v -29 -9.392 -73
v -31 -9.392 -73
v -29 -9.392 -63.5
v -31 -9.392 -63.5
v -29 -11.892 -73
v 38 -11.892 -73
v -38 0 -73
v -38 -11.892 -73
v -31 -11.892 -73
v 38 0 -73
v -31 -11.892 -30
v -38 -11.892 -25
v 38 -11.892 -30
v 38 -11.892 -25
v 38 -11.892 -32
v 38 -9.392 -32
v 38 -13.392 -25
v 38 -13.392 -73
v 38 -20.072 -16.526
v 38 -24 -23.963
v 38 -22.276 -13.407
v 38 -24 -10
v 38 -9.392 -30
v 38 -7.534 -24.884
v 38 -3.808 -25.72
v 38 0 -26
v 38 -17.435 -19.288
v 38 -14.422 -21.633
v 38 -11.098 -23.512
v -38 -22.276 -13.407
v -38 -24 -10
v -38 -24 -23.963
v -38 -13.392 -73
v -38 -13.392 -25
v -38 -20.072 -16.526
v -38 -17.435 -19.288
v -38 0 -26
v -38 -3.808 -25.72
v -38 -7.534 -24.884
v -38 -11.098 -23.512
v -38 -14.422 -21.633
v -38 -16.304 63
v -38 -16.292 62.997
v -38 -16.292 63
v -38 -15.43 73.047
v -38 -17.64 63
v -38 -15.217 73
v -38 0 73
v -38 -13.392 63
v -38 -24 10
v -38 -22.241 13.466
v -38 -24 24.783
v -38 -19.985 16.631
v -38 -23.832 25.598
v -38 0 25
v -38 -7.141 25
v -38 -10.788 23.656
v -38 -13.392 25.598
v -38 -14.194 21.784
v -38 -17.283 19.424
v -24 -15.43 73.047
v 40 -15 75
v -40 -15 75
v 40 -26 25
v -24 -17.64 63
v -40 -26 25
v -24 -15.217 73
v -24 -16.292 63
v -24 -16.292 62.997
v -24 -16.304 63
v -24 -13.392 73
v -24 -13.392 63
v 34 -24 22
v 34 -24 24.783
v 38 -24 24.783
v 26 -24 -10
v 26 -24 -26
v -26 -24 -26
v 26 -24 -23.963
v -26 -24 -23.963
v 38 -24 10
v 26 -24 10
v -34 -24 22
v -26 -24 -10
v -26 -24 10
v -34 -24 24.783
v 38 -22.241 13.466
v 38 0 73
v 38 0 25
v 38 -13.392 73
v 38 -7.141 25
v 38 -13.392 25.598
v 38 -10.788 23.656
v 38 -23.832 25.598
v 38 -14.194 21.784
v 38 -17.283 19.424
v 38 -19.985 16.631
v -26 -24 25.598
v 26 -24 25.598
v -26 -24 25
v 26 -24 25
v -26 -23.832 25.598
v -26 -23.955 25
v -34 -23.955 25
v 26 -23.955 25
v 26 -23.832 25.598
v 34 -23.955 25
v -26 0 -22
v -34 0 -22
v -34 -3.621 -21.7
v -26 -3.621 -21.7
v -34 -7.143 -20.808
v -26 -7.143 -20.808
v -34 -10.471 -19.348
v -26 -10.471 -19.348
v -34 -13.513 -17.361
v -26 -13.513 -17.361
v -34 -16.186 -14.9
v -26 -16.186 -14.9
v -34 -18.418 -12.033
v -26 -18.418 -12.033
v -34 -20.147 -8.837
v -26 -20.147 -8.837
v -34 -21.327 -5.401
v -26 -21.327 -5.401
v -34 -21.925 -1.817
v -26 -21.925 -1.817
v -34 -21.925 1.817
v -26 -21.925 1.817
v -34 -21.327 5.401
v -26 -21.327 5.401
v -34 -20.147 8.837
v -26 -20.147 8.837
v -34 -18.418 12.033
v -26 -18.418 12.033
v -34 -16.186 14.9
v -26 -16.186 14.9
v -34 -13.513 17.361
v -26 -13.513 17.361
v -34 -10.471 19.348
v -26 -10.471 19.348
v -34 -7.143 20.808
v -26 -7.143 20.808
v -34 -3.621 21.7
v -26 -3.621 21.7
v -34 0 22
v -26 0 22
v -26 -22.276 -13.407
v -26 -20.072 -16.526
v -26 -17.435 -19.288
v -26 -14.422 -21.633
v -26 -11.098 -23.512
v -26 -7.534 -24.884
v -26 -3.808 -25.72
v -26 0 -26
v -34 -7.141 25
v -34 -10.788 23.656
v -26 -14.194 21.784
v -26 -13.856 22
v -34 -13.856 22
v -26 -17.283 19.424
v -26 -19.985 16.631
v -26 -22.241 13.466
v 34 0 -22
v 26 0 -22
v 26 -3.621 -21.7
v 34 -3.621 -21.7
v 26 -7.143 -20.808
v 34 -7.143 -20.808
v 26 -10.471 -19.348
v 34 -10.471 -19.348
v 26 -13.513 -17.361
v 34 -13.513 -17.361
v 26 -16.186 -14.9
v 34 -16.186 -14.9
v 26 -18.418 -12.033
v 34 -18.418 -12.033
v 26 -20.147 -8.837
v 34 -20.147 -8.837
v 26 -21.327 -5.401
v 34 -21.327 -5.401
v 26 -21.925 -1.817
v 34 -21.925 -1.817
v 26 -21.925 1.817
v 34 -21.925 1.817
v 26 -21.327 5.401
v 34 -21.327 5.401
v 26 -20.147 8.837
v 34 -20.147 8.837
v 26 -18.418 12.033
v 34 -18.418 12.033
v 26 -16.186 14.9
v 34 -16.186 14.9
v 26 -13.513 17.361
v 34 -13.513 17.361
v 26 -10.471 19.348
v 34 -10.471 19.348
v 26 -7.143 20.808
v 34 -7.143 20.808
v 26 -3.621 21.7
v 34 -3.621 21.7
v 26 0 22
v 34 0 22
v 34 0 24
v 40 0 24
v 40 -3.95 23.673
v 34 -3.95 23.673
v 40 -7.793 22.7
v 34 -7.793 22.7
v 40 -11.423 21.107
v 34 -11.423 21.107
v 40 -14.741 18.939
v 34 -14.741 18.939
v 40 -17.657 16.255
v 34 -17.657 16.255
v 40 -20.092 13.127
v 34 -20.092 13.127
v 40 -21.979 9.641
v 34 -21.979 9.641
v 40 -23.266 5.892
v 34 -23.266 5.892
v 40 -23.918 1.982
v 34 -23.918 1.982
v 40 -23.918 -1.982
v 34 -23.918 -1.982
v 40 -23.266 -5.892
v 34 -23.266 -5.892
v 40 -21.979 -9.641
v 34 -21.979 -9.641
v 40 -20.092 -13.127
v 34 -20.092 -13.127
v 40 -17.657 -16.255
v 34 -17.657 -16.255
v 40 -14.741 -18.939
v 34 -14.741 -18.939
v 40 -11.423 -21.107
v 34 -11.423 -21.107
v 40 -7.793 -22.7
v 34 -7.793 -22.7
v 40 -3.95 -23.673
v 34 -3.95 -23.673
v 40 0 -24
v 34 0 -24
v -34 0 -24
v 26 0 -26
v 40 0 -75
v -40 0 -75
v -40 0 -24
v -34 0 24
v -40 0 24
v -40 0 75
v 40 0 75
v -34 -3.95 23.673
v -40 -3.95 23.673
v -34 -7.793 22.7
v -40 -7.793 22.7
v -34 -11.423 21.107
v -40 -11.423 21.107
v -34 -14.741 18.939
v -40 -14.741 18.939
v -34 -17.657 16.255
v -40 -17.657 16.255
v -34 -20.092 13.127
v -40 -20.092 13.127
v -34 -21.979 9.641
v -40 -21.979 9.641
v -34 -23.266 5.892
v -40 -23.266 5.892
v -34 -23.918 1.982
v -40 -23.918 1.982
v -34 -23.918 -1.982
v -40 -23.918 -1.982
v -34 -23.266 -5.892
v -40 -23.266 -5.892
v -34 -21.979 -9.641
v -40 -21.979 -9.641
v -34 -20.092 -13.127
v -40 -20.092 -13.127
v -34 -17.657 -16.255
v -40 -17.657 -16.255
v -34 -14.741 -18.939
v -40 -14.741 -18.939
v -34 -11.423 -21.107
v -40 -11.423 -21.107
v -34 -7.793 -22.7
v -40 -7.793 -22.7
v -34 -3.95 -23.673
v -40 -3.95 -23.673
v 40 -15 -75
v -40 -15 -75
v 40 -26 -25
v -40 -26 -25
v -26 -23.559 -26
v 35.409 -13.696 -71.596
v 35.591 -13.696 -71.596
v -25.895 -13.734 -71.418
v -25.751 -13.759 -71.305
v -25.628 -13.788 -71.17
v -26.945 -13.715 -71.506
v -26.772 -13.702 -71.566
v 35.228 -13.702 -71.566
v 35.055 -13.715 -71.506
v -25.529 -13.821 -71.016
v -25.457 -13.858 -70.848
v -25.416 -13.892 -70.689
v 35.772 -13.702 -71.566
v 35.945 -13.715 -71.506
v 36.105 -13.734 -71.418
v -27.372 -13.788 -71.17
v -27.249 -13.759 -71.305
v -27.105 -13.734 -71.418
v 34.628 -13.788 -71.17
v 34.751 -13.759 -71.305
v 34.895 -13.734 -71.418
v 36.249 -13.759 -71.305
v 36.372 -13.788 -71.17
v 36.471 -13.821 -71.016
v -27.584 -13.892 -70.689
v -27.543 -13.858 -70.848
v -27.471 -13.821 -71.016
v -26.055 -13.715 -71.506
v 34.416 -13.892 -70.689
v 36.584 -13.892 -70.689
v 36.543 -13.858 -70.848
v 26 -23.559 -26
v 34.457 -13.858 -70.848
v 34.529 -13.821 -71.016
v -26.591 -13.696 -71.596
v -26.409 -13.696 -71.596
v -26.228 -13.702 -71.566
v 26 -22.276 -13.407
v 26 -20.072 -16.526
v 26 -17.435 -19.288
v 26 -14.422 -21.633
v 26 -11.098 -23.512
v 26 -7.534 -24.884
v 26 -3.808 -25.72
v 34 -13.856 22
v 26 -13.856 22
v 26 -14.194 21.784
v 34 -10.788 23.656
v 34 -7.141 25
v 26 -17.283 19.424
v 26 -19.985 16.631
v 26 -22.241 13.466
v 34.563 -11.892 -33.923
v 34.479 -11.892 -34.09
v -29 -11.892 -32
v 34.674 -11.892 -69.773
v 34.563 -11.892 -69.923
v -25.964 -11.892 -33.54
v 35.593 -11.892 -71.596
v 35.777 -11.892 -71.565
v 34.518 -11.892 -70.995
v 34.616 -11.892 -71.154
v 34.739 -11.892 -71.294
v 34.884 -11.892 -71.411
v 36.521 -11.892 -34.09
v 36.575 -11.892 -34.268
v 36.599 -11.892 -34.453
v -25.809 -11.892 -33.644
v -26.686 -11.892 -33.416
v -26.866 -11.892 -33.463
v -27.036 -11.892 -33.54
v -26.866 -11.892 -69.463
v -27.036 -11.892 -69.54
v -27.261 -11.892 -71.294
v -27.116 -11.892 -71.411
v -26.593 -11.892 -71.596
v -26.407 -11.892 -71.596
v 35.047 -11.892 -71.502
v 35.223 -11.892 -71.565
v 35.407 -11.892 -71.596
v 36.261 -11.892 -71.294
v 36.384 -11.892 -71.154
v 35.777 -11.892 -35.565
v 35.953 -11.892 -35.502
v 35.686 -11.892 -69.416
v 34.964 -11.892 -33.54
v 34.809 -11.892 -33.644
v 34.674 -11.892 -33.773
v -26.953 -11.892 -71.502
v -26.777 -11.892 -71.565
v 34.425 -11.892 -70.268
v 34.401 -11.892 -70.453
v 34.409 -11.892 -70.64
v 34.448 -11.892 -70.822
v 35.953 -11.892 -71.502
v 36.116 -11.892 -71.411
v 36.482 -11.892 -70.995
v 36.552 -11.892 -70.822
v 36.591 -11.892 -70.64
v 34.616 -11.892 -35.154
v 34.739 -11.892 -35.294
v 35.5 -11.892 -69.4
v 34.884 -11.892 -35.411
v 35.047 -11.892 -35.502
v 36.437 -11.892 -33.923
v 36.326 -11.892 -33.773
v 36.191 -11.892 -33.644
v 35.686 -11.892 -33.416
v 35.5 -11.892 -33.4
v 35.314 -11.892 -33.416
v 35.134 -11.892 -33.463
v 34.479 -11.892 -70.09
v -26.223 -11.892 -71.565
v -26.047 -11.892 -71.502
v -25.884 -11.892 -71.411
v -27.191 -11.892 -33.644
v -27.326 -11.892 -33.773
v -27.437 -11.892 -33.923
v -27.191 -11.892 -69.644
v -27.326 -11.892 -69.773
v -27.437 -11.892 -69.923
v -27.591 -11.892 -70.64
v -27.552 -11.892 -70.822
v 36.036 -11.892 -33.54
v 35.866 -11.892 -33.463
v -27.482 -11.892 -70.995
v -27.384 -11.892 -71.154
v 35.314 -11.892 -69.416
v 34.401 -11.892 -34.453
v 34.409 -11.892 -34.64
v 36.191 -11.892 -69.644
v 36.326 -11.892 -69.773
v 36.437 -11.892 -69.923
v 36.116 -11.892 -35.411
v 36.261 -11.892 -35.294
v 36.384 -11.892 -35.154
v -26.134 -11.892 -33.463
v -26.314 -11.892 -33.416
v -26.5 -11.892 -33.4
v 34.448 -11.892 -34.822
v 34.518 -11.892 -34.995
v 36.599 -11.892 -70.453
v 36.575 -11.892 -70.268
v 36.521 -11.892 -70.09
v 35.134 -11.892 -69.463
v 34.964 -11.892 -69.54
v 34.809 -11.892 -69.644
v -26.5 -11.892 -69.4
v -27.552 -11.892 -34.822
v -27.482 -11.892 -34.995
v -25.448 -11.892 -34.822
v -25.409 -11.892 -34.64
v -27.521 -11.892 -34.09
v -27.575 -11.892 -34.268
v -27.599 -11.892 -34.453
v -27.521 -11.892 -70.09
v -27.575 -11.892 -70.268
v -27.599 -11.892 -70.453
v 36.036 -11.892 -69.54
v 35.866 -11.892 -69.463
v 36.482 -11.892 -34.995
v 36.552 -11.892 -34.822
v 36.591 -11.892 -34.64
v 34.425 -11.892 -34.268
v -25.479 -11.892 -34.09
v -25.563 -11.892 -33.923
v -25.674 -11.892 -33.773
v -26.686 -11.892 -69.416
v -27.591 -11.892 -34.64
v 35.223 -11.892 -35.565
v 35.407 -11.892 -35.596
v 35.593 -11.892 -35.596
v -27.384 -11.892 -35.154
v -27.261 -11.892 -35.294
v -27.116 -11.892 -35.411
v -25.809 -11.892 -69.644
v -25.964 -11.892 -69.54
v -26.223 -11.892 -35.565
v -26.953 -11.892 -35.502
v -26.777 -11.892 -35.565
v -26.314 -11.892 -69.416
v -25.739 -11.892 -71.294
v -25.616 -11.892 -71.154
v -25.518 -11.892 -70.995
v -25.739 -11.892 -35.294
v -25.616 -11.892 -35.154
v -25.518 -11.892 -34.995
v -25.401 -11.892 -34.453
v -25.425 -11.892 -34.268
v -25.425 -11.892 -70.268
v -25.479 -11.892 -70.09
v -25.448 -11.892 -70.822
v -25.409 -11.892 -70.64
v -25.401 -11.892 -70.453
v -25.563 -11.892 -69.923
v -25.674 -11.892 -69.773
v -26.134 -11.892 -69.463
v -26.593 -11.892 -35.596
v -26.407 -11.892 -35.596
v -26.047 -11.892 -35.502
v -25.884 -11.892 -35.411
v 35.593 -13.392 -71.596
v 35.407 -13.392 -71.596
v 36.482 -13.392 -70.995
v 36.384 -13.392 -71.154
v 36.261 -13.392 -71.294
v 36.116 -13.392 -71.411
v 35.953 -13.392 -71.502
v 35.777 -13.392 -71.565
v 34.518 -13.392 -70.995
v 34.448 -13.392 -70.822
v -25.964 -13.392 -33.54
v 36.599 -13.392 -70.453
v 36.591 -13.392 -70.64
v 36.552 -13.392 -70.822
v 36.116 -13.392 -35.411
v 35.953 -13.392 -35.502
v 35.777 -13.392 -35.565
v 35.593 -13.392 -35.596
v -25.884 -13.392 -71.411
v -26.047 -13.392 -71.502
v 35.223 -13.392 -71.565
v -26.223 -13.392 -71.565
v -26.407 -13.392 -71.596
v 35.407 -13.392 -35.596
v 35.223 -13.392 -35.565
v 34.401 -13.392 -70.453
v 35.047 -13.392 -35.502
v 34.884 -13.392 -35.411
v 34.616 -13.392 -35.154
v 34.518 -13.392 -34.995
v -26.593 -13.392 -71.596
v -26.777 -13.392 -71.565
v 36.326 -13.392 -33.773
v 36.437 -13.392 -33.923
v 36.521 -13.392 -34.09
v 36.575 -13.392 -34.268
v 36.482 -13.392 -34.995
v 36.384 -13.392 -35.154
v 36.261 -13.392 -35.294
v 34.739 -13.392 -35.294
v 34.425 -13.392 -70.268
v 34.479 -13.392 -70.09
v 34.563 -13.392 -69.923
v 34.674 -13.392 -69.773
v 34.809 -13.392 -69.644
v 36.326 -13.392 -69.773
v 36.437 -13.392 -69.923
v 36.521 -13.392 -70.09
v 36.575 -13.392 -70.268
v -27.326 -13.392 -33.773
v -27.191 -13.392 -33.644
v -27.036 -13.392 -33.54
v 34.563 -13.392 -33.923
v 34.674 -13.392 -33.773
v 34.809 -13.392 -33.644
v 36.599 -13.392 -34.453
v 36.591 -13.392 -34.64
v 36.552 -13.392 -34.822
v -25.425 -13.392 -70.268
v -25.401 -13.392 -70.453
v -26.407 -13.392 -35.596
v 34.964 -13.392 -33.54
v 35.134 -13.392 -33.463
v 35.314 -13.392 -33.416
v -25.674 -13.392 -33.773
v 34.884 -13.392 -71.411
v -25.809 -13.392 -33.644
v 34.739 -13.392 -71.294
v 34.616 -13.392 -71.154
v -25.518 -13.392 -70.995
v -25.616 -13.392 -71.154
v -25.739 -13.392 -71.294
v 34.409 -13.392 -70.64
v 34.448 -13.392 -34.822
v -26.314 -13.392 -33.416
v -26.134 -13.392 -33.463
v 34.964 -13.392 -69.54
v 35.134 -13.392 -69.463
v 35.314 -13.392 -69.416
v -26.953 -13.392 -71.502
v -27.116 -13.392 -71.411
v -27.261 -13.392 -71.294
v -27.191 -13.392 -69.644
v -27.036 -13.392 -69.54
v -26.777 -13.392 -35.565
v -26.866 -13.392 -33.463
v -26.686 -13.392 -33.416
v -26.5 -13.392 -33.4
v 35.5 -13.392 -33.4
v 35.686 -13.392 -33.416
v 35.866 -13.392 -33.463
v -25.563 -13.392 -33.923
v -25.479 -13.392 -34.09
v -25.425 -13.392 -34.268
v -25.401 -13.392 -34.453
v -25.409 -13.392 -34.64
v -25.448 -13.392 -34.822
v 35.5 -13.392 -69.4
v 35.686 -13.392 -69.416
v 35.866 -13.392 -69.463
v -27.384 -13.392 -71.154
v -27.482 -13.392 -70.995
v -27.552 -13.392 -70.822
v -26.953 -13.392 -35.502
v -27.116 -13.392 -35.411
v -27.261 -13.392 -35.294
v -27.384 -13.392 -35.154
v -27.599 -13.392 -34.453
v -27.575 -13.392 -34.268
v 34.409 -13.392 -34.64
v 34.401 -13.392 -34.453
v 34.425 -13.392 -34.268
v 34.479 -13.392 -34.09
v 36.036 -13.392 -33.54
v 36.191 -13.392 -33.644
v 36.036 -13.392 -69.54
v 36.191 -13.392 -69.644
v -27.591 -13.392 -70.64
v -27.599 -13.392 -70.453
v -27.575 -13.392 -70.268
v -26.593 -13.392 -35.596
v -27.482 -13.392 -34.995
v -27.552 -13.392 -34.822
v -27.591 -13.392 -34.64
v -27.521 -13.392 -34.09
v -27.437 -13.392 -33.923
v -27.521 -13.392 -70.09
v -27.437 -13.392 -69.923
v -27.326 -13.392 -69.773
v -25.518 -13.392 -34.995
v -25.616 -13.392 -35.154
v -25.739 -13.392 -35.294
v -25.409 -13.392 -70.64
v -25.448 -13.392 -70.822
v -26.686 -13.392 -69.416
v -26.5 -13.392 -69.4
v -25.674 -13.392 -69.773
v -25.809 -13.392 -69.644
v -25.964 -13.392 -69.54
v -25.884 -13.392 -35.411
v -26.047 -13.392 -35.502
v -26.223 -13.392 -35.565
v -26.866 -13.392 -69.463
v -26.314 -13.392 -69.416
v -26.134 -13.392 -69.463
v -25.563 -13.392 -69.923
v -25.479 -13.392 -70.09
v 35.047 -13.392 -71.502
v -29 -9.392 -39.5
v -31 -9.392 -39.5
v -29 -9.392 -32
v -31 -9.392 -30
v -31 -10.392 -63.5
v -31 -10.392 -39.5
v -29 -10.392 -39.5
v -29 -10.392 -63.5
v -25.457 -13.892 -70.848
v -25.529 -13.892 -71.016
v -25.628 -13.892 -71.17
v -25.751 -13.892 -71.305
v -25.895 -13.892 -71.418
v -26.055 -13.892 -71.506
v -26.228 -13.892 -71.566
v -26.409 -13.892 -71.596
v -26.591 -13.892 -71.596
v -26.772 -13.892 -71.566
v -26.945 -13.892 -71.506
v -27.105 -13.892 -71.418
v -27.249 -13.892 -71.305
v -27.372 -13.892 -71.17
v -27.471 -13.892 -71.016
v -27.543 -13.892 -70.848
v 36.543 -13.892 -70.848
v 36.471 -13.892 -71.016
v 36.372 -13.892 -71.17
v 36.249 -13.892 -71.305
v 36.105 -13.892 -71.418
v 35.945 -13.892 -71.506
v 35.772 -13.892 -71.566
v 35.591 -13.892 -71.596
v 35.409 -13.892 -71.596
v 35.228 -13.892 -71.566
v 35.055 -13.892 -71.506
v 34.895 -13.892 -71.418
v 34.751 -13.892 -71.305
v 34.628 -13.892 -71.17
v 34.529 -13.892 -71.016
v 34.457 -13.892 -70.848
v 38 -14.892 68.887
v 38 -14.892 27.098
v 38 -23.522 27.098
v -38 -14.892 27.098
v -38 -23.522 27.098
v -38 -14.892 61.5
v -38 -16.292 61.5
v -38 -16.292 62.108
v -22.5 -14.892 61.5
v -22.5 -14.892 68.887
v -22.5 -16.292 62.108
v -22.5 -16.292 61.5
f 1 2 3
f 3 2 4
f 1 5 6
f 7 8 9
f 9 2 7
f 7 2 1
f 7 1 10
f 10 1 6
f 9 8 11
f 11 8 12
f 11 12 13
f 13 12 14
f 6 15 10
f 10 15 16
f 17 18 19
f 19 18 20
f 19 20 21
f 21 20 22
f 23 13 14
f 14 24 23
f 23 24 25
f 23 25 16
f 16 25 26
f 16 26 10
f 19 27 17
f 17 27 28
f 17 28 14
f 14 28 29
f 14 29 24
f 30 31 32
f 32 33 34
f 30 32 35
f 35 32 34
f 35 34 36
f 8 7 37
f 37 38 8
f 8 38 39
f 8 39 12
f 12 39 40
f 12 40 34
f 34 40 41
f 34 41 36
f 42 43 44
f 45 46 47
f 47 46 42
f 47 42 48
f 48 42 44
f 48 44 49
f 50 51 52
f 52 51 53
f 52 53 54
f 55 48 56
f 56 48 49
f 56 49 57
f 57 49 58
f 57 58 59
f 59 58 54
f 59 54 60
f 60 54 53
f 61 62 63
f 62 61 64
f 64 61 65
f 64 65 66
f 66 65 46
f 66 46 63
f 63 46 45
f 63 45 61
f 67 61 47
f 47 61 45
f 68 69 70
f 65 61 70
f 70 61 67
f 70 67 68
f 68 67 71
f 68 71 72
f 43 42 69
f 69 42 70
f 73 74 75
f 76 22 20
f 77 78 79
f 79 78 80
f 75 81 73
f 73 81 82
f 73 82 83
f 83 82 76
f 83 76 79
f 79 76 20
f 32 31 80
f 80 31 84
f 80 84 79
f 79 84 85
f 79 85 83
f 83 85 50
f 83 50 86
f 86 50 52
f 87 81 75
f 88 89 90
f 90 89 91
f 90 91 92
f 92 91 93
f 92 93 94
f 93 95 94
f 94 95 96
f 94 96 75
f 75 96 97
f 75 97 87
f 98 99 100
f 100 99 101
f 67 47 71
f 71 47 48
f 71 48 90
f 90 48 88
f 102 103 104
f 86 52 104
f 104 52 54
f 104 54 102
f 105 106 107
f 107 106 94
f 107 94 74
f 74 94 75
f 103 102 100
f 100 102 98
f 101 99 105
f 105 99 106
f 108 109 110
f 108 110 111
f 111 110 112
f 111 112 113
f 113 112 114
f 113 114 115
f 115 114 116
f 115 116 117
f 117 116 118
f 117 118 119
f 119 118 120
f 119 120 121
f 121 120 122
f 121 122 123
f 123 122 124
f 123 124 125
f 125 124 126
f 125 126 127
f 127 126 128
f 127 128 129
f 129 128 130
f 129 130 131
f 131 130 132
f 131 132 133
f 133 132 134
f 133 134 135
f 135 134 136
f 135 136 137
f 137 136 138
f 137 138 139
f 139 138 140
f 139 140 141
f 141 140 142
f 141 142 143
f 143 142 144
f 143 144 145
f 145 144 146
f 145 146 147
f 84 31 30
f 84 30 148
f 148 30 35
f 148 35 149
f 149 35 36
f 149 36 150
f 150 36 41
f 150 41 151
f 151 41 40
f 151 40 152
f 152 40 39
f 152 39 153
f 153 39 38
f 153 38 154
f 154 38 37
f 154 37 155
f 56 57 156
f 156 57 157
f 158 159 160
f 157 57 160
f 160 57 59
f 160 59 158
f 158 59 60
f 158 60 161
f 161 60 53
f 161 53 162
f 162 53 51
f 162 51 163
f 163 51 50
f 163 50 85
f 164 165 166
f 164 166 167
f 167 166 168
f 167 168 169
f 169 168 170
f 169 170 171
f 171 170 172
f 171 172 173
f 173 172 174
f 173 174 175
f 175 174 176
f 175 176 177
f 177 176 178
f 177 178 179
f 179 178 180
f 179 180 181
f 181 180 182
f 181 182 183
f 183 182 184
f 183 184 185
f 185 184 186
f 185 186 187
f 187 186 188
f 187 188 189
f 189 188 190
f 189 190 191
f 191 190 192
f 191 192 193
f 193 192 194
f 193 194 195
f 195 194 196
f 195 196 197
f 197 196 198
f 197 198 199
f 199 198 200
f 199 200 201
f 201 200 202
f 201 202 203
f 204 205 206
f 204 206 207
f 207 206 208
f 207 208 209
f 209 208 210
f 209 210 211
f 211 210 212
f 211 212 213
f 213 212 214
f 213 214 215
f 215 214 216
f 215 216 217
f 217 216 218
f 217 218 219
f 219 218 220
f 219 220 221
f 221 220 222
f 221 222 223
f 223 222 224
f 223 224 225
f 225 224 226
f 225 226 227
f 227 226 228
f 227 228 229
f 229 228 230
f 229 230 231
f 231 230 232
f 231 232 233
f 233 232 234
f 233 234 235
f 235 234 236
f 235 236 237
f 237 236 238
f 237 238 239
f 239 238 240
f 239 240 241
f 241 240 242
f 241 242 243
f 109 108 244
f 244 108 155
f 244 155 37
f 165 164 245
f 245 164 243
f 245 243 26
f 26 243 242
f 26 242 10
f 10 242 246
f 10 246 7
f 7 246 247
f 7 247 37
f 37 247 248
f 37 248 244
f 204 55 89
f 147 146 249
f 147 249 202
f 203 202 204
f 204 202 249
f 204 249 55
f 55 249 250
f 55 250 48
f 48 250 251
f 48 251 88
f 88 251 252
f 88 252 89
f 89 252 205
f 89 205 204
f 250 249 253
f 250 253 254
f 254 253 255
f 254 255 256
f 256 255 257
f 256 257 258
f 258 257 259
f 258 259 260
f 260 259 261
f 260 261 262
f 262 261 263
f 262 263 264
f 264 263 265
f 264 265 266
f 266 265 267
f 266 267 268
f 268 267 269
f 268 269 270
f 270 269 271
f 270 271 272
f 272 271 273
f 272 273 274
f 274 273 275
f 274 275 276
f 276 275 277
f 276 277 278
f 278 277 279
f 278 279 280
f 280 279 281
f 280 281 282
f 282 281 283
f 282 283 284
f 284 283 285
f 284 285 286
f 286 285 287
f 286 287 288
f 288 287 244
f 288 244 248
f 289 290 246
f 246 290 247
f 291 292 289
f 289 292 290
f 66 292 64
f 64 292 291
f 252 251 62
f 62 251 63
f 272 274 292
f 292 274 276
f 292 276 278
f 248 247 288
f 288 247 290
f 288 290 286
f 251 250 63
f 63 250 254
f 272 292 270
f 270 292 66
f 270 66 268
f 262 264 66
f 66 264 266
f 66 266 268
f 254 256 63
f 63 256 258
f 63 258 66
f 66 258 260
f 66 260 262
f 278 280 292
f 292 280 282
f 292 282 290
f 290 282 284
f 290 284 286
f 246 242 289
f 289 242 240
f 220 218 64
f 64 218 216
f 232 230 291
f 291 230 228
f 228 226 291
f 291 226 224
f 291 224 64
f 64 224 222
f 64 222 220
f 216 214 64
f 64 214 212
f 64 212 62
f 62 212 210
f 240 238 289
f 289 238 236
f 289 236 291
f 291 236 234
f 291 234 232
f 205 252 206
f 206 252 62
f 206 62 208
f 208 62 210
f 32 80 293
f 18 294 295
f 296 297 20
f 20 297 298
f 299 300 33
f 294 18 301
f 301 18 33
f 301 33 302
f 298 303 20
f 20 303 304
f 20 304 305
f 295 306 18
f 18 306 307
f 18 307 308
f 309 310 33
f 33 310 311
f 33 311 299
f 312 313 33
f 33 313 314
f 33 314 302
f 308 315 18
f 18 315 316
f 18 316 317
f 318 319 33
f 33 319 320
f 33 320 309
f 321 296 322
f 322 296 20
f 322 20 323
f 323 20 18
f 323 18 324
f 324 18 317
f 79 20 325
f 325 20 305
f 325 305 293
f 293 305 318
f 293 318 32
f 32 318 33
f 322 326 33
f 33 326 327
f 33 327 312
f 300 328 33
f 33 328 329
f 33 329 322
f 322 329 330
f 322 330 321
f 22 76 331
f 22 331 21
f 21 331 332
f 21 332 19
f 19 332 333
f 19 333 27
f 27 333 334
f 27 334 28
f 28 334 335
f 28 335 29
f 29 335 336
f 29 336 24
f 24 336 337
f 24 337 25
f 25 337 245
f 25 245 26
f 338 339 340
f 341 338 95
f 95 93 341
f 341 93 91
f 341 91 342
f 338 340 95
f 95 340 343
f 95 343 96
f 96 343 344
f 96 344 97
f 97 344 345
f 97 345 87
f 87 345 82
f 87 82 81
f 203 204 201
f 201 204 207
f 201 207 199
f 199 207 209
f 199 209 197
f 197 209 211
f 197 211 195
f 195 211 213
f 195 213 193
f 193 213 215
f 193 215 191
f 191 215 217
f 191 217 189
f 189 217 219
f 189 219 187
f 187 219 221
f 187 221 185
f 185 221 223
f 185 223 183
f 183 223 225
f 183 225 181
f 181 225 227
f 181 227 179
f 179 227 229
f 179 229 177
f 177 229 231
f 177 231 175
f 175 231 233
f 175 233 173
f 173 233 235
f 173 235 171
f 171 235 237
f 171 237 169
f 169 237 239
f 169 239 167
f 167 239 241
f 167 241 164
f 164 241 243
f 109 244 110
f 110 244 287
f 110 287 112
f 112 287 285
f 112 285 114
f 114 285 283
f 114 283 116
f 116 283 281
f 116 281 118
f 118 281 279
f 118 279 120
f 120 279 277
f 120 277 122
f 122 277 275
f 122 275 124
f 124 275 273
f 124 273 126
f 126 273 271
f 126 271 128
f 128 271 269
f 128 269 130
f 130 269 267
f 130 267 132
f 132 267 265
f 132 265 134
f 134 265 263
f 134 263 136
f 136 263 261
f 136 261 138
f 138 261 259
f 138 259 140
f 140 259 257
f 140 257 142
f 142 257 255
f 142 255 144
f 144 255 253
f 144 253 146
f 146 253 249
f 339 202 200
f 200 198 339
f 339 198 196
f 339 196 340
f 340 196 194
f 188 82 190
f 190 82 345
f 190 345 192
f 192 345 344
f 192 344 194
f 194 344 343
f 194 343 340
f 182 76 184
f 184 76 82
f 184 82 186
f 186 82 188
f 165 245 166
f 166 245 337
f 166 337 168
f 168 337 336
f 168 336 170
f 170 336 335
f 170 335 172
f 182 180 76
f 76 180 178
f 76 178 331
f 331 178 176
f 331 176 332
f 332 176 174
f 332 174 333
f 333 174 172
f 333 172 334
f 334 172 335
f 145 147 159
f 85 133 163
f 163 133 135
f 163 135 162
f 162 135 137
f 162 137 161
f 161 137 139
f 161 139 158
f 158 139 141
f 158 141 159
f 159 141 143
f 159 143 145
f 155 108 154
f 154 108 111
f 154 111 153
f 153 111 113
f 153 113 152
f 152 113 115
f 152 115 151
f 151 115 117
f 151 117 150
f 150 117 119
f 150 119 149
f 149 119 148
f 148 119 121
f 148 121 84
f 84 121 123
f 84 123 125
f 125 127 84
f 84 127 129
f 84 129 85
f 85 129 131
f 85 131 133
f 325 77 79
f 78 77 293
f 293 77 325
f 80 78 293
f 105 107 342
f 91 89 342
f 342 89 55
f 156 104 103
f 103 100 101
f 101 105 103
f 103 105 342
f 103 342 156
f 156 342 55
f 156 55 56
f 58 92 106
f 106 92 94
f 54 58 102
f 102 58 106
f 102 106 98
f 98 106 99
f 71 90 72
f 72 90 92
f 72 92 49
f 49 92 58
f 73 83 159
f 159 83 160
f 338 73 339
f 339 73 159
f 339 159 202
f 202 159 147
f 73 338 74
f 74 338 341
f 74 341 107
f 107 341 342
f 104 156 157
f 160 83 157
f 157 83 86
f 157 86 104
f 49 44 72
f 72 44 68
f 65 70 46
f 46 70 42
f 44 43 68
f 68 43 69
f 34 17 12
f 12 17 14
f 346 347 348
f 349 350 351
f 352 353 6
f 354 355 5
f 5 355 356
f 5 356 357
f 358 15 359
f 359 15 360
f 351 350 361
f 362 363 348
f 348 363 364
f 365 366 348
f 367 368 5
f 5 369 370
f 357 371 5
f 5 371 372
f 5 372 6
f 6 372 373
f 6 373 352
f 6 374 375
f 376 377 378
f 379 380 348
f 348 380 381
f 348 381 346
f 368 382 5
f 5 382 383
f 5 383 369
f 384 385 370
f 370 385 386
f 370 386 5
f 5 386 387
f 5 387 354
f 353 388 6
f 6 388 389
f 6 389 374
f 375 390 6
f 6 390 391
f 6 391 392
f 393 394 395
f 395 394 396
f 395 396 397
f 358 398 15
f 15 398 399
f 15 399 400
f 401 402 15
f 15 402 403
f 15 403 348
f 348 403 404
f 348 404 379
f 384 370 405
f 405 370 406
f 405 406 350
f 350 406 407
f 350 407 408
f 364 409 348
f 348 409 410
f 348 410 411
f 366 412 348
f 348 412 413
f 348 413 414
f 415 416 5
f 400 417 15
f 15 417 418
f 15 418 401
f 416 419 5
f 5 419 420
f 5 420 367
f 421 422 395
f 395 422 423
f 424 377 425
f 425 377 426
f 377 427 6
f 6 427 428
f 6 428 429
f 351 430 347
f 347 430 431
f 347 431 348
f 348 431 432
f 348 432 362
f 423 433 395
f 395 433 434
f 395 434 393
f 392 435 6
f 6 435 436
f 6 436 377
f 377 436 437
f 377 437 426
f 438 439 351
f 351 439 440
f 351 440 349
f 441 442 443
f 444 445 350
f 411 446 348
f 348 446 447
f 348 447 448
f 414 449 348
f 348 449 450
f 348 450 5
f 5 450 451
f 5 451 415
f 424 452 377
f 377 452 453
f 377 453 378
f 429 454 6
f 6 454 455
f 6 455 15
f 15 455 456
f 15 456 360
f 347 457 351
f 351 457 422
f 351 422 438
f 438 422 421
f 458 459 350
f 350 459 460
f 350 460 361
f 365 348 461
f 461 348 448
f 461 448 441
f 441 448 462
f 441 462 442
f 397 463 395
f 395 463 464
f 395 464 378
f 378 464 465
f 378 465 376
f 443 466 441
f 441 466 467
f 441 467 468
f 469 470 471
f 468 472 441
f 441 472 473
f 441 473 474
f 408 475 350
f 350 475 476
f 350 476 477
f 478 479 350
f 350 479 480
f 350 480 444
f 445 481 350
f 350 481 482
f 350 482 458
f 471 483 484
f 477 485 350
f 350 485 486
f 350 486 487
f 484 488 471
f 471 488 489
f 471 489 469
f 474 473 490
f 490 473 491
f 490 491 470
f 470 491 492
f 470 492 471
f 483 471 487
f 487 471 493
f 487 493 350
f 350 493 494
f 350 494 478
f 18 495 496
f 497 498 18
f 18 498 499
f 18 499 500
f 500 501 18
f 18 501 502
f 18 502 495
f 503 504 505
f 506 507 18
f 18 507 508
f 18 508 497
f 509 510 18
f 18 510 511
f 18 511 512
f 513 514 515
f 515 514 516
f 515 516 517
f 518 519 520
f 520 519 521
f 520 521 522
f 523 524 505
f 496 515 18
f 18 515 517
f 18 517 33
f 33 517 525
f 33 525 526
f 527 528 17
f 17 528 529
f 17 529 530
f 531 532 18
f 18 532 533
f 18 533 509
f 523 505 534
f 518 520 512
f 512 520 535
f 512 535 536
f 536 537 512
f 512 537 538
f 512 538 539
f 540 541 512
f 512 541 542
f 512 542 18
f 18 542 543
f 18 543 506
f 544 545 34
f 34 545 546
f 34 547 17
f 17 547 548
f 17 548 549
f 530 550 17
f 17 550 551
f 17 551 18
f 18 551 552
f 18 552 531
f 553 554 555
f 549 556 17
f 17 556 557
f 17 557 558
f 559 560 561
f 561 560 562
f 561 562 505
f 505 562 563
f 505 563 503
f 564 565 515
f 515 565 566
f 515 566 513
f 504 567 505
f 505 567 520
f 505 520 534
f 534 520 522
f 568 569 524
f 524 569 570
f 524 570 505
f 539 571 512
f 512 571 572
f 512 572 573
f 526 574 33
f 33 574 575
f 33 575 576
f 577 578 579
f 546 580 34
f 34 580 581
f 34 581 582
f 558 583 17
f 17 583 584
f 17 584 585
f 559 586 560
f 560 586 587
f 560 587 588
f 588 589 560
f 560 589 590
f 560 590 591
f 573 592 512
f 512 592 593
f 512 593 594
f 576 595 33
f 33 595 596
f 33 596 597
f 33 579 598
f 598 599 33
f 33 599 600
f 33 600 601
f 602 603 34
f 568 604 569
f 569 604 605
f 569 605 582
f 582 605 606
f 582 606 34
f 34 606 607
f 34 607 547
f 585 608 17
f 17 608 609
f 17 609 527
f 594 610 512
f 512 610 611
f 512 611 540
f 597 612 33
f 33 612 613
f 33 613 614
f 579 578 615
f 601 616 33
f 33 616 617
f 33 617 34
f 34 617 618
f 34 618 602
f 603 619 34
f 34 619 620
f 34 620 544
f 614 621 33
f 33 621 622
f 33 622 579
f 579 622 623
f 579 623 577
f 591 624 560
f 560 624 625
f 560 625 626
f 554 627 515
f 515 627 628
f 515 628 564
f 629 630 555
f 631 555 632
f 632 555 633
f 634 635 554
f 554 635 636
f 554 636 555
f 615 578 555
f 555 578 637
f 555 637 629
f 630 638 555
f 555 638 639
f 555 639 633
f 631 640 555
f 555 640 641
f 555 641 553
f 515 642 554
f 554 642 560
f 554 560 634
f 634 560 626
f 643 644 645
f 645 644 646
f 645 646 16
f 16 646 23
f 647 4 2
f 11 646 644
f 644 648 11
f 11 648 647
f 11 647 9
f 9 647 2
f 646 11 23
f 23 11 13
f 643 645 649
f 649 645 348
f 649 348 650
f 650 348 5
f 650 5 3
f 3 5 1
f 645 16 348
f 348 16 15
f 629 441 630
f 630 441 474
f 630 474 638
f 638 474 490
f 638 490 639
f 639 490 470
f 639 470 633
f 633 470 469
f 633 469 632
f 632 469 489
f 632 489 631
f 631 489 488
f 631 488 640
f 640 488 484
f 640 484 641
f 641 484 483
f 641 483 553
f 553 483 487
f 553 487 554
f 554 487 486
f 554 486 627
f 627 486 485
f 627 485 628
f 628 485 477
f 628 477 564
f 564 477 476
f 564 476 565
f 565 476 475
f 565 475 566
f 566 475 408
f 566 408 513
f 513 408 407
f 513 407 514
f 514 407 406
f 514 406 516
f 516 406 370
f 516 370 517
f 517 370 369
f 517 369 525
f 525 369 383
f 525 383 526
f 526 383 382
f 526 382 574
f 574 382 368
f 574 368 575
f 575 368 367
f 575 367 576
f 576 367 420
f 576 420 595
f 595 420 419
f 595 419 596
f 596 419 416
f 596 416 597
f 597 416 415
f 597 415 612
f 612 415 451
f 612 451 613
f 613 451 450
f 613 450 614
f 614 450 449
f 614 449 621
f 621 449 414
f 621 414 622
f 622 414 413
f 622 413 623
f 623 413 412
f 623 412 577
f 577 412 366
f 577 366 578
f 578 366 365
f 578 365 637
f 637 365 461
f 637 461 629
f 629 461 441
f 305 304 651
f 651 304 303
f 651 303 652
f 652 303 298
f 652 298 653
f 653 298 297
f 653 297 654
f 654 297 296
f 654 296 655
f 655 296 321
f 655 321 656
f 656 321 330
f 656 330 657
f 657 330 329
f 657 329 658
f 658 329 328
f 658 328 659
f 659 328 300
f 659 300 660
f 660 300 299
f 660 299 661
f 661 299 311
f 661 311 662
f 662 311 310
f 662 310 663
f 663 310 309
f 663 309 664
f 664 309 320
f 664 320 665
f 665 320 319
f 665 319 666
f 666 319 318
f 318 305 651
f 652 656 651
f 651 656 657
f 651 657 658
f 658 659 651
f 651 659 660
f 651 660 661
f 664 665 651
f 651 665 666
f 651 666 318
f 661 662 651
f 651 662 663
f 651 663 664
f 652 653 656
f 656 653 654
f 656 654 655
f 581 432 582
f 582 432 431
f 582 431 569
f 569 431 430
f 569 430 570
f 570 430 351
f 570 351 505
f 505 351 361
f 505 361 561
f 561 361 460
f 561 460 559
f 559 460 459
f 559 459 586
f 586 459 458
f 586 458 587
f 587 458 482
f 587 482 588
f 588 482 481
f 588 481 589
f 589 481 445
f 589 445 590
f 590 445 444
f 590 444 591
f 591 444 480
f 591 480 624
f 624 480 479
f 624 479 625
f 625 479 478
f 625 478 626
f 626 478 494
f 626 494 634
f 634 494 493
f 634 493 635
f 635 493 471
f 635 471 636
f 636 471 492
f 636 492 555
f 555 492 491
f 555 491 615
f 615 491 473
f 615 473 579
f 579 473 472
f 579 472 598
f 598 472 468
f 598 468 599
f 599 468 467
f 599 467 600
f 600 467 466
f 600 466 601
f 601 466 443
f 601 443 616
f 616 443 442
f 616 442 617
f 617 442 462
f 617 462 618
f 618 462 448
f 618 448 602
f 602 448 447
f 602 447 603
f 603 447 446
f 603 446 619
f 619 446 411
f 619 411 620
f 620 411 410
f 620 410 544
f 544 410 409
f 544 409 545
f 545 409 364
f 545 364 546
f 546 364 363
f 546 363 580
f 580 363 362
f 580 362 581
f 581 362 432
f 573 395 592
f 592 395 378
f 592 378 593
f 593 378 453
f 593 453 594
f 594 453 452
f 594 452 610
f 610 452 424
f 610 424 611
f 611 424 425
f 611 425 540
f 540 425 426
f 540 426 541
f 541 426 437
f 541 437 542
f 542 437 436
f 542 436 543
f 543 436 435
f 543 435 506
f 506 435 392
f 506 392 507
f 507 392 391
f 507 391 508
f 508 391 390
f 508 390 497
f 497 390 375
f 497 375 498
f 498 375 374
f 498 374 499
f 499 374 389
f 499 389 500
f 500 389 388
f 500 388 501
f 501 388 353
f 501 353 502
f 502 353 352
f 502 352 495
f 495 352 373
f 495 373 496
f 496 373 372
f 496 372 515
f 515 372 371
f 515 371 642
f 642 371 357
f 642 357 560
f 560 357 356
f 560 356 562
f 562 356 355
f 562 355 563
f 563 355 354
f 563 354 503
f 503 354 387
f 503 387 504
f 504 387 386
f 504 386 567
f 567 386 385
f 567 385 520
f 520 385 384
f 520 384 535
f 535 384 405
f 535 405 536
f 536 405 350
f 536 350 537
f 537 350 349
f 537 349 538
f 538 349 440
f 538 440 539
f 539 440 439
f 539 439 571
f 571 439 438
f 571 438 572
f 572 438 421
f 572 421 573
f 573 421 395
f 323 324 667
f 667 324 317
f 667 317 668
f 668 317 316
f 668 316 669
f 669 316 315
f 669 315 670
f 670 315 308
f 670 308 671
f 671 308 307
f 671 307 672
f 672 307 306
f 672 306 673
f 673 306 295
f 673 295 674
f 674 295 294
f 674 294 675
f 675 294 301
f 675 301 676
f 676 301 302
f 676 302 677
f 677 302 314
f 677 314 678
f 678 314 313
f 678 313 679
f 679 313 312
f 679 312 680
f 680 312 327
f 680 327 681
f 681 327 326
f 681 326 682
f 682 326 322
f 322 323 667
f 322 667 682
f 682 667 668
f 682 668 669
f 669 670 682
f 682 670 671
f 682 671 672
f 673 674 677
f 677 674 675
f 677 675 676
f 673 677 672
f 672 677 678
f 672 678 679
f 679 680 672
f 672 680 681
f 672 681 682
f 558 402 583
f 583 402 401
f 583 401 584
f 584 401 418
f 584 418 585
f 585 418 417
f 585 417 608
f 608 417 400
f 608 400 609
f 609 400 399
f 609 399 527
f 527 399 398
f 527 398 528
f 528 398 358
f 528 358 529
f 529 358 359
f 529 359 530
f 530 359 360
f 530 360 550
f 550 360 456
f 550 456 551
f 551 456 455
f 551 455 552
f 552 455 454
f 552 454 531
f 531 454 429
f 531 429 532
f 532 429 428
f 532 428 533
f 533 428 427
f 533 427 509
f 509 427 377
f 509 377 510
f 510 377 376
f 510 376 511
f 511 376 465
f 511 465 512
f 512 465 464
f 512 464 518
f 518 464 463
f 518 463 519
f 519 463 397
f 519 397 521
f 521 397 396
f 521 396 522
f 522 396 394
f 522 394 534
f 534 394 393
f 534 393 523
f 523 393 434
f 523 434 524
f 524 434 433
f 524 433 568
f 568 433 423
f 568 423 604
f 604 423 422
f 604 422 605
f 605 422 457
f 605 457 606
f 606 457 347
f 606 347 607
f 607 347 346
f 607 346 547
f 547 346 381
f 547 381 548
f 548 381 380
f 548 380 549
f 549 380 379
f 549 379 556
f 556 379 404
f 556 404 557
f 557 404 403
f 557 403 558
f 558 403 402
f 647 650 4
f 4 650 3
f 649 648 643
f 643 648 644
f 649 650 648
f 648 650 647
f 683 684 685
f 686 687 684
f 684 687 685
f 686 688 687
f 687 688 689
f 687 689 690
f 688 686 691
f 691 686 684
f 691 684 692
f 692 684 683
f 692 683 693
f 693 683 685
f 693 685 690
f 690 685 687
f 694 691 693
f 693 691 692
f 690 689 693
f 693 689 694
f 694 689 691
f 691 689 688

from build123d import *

# Parameters (mm, degrees)
EXTRUDE_1_DEPTH          = 40
EXTRUDE_1_DEPTH_BACK     = 40
CUT_EXTRUDE_2_DEPTH      = 34
CUT_EXTRUDE_2_DEPTH_BACK = 34
CUT_EXTRUDE_3_DEPTH      = 38
CUT_EXTRUDE_3_DEPTH_BACK = 38
EXTRUDE_2_DEPTH          = 76
CUT_EXTRUDE_START        = -4
SKETCH_9_R               = 24
CUT_EXTRUDE_4_DEPTH      = 4
SKETCH_10_R              = 24
CUT_EXTRUDE_5_DEPTH      = 4
SKETCH_11_W              = 52
SKETCH_11_H              = 52
CUT_EXTRUDE_6_DEPTH      = 24
SKETCH_16_W              = 76
SKETCH_16_H              = 2
CUT_EXTRUDE_8_DEPTH      = 23.5
EXTRUDE_4_DEPTH          = 77.5
SKETCH_19_W              = 68
SKETCH_19_H              = 3
EXTRUDE_6_DEPTH          = 27
SKETCH_21_W              = 14
SKETCH_21_H              = 10
CUT_EXTRUDE_10_DEPTH     = 2
SKETCH_22_W              = 14
SKETCH_22_H              = 10
CUT_EXTRUDE_11_DEPTH     = 6
EXTRUDE_7_DEPTH          = 1.4
CUT_EXTRUDE_12_DEPTH     = 3.4
SKETCH_25_W              = 68
SKETCH_25_H              = 1
CUT_EXTRUDE_13_DEPTH     = 3.4
SKETCH_26_W              = 48
SKETCH_26_H              = 1.5
EXTRUDE_8_DEPTH          = 78
SKETCH_27_W              = 71
SKETCH_27_H              = 45
SKETCH_27_W_2            = 67
SKETCH_27_H_2            = 41
EXTRUDE_9_DEPTH          = 2.5
SKETCH_28_R              = 1.1
CUT_EXTRUDE_14_DEPTH     = 2
SKETCH_29_W              = 2
SKETCH_29_H              = 24
CUT_EXTRUDE_15_DEPTH     = 1


with BuildPart() as part:
    # Эскиз1 → Бобышка-Вытянуть1 (new, two sides: drawn at the far end of the back side and taken through both)
    with BuildSketch(Plane(origin=(0, 0, 0), x_dir=(0, 0, -1), z_dir=(1, 0, 0)).offset(-EXTRUDE_1_DEPTH_BACK)):
        with BuildLine():
            Line((-75, 0), (-75, -15))
            Line((-75, -15), (-25, -26))
            Line((-25, -26), (-4.563728592, -26))
            Line((-4.563728592, -26), (25, -26))
            Line((25, -26), (75, -15))
            Line((75, -15), (75, 0))
            Line((75, 0), (24, 0))
            ThreePointArc((24, 0), (0, -24), (-24, 0))
            Line((-24, 0), (-75, 0))
        make_face()
    extrude(amount=EXTRUDE_1_DEPTH + EXTRUDE_1_DEPTH_BACK)

    # Эскиз3 → Вырез-Вытянуть2 (cut, two sides: drawn at the far end of the back side and taken through both)
    with BuildSketch(Plane(origin=(0, 0, 0), x_dir=(0, 0, -1), z_dir=(1, 0, 0)).offset(-CUT_EXTRUDE_2_DEPTH_BACK)):
        Polygon((26, 0), (73, 0), (73, -13.392171882), (23.878685446, -24), (-24.782599465, -24), (-73, -13.400590035), (-73, 0), (-26, 0), align=None)
    extrude(amount=CUT_EXTRUDE_2_DEPTH + CUT_EXTRUDE_2_DEPTH_BACK, mode=Mode.SUBTRACT)

    # Эскиз7 → Вырез-Вытянуть3 (cut, two sides: drawn at the far end of the back side and taken through both)
    with BuildSketch(Plane(origin=(0, 0, 0), x_dir=(0, 0, -1), z_dir=(1, 0, 0)).offset(-CUT_EXTRUDE_3_DEPTH_BACK)):
        Polygon((-26.2, 0), (26.2, 0), (73, 0), (73, -13.392171882), (23.963305429, -24), (10.509043724, -24), (-10.509043724, -24), (-24.782599465, -24), (-73, -14.042818852), (-73, 0), align=None)
    extrude(amount=CUT_EXTRUDE_3_DEPTH + CUT_EXTRUDE_3_DEPTH_BACK, mode=Mode.SUBTRACT)

    # Эскиз8 → Бобышка-Вытянуть2 (add)
    with BuildSketch(Plane(origin=(-38, 0, 0), x_dir=(0, 0, -1), z_dir=(1, 0, 0))):
        with BuildLine():
            Line((-26, 0), (-22, 0))
            ThreePointArc((-22, 0), (0, -22), (22, 0))
            Line((22, 0), (26, 0))
            ThreePointArc((26, 0), (0, -26), (-26, 0))
        make_face()
    extrude(amount=EXTRUDE_2_DEPTH)

    # Эскиз9 → Вырез-Вытянуть4 (cut)
    with BuildSketch(Plane(origin=(38, 0, 0), x_dir=(0, 0, -1), z_dir=(1, 0, 0)).offset(CUT_EXTRUDE_START)):
        Circle(SKETCH_9_R)
    extrude(amount=CUT_EXTRUDE_4_DEPTH, mode=Mode.SUBTRACT)

    # Эскиз10 → Вырез-Вытянуть5 (cut)
    with BuildSketch(Plane.ZY.offset(38)):
        Circle(SKETCH_10_R)
    extrude(amount=-CUT_EXTRUDE_5_DEPTH, mode=Mode.SUBTRACT)

    # Эскиз11 → Вырез-Вытянуть6 (cut)
    with BuildSketch(Plane(origin=(0, 0, 0), x_dir=(1, 0, 0), z_dir=(0, 1, 0))):
        Rectangle(SKETCH_11_W, SKETCH_11_H)
    extrude(amount=-CUT_EXTRUDE_6_DEPTH, mode=Mode.SUBTRACT)

    # Эскиз16 → Вырез-Вытянуть8 (cut)
    with BuildSketch(Plane(origin=(0, 0, 0), x_dir=(1, 0, 0), z_dir=(0, 1, 0))):
        with Locations((0, -26)):
            Rectangle(SKETCH_16_W, SKETCH_16_H)
    extrude(amount=-CUT_EXTRUDE_8_DEPTH, mode=Mode.SUBTRACT)

    # Эскиз17 → Бобышка-Вытянуть4 (add)
    with BuildSketch(Plane(origin=(-38, 0, 0), x_dir=(0, 0, -1), z_dir=(1, 0, 0))):
        Polygon((-73, -13.392171882), (-25.598256637, -13.392171882), (-25.598256637, -25.86838354), (-27.098256637, -25.53838354), (-27.098256637, -14.892171882), (-73, -14.892171882), align=None)
    extrude(amount=EXTRUDE_4_DEPTH)

    # Эскиз19 → Бобышка-Вытянуть6 (add)
    with BuildSketch(Plane(origin=(0, 0, 0), x_dir=(1, 0, 0), z_dir=(0, 1, 0))):
        with Locations((0, -23.5)):
            Rectangle(SKETCH_19_W, SKETCH_19_H)
    extrude(amount=-EXTRUDE_6_DEPTH)

    # Эскиз21 → Вырез-Вытянуть10 (cut)
    with BuildSketch(Plane(origin=(0, -30.045784052, 6.610072491), x_dir=(1, 0, 0), z_dir=(0, -0.9766444667050901, 0.21486178267511963))):
        with Locations((-31, 63.025408263)):
            Rectangle(SKETCH_21_W, SKETCH_21_H)
    extrude(amount=-CUT_EXTRUDE_10_DEPTH, mode=Mode.SUBTRACT)

    # Эскиз22 → Вырез-Вытянуть11 (cut)
    with BuildSketch(Plane(origin=(0, -13.392171882, 0), x_dir=(1, 0, 0), z_dir=(0, 1, 0))):
        with Locations((-31, -68)):
            Rectangle(SKETCH_22_W, SKETCH_22_H)
    extrude(amount=-CUT_EXTRUDE_11_DEPTH, mode=Mode.SUBTRACT)

    # Эскиз23 → Бобышка-Вытянуть7 (add)
    with BuildSketch(Plane.XZ.offset(14.892171882)):
        Polygon((-38, 63), (-24, 63), (-24, 73.046711067), (-22.5, 73.046711067), (-22.5, 64.14337403), (-22.5, 61.5), (-38, 61.5), align=None)
    extrude(amount=EXTRUDE_7_DEPTH)

    # Эскиз24 → Вырез-Вытянуть12 (cut)
    with BuildSketch(Plane(origin=(-22.5, 0, 0), x_dir=(0, 0, -1), z_dir=(1, 0, 0))):
        Polygon((-73.046711067, -15.429723565), (-69.126491444, -16.292171882), (-73.046711067, -16.292171882), align=None)
    extrude(amount=-CUT_EXTRUDE_12_DEPTH, mode=Mode.SUBTRACT)

    # Эскиз25 → Вырез-Вытянуть13 (cut)
    with BuildSketch(Plane(origin=(0, 0, 22), x_dir=(-1, 0, 0), z_dir=(0, 0, -1))):
        with Locations((0, -26.5)):
            Rectangle(SKETCH_25_W, SKETCH_25_H)
    extrude(amount=-CUT_EXTRUDE_13_DEPTH, mode=Mode.SUBTRACT)

    # Эскиз26 → Бобышка-Вытянуть8 (add)
    with BuildSketch(Plane.ZY.offset(-38)):
        with Locations((-49, -12.642171882)):
            Rectangle(SKETCH_26_W, SKETCH_26_H)
    extrude(amount=EXTRUDE_8_DEPTH)

    # Эскиз27 → Бобышка-Вытянуть9 (add)
    with BuildSketch(Plane(origin=(0, -11.892171882, 0), x_dir=(1, 0, 0), z_dir=(0, 1, 0))):
        with Locations((4.5, 52.5)):
            Rectangle(SKETCH_27_W, SKETCH_27_H)
        with Locations((4.5, 52.5)):
            Rectangle(SKETCH_27_W_2, SKETCH_27_H_2, mode=Mode.SUBTRACT)
    extrude(amount=EXTRUDE_9_DEPTH)

    # Эскиз28 → Вырез-Вытянуть14 (cut)
    with BuildSketch(Plane(origin=(0, -11.892171882, 0), x_dir=(1, 0, 0), z_dir=(0, 1, 0))):
        with Locations((-26.5, 70.5)):
            Circle(SKETCH_28_R)
        with Locations((-26.5, 34.5)):
            Circle(SKETCH_28_R)
        with Locations((35.5, 70.5)):
            Circle(SKETCH_28_R)
        with Locations((35.5, 34.5)):
            Circle(SKETCH_28_R)
    extrude(amount=-CUT_EXTRUDE_14_DEPTH, mode=Mode.SUBTRACT)

    # Эскиз29 → Вырез-Вытянуть15 (cut)
    with BuildSketch(Plane(origin=(0, -9.392171882, 0), x_dir=(1, 0, 0), z_dir=(0, 1, 0))):
        with Locations((-30, 51.5)):
            Rectangle(SKETCH_29_W, SKETCH_29_H)
    extrude(amount=-CUT_EXTRUDE_15_DEPTH, mode=Mode.SUBTRACT)


solid = part.part
